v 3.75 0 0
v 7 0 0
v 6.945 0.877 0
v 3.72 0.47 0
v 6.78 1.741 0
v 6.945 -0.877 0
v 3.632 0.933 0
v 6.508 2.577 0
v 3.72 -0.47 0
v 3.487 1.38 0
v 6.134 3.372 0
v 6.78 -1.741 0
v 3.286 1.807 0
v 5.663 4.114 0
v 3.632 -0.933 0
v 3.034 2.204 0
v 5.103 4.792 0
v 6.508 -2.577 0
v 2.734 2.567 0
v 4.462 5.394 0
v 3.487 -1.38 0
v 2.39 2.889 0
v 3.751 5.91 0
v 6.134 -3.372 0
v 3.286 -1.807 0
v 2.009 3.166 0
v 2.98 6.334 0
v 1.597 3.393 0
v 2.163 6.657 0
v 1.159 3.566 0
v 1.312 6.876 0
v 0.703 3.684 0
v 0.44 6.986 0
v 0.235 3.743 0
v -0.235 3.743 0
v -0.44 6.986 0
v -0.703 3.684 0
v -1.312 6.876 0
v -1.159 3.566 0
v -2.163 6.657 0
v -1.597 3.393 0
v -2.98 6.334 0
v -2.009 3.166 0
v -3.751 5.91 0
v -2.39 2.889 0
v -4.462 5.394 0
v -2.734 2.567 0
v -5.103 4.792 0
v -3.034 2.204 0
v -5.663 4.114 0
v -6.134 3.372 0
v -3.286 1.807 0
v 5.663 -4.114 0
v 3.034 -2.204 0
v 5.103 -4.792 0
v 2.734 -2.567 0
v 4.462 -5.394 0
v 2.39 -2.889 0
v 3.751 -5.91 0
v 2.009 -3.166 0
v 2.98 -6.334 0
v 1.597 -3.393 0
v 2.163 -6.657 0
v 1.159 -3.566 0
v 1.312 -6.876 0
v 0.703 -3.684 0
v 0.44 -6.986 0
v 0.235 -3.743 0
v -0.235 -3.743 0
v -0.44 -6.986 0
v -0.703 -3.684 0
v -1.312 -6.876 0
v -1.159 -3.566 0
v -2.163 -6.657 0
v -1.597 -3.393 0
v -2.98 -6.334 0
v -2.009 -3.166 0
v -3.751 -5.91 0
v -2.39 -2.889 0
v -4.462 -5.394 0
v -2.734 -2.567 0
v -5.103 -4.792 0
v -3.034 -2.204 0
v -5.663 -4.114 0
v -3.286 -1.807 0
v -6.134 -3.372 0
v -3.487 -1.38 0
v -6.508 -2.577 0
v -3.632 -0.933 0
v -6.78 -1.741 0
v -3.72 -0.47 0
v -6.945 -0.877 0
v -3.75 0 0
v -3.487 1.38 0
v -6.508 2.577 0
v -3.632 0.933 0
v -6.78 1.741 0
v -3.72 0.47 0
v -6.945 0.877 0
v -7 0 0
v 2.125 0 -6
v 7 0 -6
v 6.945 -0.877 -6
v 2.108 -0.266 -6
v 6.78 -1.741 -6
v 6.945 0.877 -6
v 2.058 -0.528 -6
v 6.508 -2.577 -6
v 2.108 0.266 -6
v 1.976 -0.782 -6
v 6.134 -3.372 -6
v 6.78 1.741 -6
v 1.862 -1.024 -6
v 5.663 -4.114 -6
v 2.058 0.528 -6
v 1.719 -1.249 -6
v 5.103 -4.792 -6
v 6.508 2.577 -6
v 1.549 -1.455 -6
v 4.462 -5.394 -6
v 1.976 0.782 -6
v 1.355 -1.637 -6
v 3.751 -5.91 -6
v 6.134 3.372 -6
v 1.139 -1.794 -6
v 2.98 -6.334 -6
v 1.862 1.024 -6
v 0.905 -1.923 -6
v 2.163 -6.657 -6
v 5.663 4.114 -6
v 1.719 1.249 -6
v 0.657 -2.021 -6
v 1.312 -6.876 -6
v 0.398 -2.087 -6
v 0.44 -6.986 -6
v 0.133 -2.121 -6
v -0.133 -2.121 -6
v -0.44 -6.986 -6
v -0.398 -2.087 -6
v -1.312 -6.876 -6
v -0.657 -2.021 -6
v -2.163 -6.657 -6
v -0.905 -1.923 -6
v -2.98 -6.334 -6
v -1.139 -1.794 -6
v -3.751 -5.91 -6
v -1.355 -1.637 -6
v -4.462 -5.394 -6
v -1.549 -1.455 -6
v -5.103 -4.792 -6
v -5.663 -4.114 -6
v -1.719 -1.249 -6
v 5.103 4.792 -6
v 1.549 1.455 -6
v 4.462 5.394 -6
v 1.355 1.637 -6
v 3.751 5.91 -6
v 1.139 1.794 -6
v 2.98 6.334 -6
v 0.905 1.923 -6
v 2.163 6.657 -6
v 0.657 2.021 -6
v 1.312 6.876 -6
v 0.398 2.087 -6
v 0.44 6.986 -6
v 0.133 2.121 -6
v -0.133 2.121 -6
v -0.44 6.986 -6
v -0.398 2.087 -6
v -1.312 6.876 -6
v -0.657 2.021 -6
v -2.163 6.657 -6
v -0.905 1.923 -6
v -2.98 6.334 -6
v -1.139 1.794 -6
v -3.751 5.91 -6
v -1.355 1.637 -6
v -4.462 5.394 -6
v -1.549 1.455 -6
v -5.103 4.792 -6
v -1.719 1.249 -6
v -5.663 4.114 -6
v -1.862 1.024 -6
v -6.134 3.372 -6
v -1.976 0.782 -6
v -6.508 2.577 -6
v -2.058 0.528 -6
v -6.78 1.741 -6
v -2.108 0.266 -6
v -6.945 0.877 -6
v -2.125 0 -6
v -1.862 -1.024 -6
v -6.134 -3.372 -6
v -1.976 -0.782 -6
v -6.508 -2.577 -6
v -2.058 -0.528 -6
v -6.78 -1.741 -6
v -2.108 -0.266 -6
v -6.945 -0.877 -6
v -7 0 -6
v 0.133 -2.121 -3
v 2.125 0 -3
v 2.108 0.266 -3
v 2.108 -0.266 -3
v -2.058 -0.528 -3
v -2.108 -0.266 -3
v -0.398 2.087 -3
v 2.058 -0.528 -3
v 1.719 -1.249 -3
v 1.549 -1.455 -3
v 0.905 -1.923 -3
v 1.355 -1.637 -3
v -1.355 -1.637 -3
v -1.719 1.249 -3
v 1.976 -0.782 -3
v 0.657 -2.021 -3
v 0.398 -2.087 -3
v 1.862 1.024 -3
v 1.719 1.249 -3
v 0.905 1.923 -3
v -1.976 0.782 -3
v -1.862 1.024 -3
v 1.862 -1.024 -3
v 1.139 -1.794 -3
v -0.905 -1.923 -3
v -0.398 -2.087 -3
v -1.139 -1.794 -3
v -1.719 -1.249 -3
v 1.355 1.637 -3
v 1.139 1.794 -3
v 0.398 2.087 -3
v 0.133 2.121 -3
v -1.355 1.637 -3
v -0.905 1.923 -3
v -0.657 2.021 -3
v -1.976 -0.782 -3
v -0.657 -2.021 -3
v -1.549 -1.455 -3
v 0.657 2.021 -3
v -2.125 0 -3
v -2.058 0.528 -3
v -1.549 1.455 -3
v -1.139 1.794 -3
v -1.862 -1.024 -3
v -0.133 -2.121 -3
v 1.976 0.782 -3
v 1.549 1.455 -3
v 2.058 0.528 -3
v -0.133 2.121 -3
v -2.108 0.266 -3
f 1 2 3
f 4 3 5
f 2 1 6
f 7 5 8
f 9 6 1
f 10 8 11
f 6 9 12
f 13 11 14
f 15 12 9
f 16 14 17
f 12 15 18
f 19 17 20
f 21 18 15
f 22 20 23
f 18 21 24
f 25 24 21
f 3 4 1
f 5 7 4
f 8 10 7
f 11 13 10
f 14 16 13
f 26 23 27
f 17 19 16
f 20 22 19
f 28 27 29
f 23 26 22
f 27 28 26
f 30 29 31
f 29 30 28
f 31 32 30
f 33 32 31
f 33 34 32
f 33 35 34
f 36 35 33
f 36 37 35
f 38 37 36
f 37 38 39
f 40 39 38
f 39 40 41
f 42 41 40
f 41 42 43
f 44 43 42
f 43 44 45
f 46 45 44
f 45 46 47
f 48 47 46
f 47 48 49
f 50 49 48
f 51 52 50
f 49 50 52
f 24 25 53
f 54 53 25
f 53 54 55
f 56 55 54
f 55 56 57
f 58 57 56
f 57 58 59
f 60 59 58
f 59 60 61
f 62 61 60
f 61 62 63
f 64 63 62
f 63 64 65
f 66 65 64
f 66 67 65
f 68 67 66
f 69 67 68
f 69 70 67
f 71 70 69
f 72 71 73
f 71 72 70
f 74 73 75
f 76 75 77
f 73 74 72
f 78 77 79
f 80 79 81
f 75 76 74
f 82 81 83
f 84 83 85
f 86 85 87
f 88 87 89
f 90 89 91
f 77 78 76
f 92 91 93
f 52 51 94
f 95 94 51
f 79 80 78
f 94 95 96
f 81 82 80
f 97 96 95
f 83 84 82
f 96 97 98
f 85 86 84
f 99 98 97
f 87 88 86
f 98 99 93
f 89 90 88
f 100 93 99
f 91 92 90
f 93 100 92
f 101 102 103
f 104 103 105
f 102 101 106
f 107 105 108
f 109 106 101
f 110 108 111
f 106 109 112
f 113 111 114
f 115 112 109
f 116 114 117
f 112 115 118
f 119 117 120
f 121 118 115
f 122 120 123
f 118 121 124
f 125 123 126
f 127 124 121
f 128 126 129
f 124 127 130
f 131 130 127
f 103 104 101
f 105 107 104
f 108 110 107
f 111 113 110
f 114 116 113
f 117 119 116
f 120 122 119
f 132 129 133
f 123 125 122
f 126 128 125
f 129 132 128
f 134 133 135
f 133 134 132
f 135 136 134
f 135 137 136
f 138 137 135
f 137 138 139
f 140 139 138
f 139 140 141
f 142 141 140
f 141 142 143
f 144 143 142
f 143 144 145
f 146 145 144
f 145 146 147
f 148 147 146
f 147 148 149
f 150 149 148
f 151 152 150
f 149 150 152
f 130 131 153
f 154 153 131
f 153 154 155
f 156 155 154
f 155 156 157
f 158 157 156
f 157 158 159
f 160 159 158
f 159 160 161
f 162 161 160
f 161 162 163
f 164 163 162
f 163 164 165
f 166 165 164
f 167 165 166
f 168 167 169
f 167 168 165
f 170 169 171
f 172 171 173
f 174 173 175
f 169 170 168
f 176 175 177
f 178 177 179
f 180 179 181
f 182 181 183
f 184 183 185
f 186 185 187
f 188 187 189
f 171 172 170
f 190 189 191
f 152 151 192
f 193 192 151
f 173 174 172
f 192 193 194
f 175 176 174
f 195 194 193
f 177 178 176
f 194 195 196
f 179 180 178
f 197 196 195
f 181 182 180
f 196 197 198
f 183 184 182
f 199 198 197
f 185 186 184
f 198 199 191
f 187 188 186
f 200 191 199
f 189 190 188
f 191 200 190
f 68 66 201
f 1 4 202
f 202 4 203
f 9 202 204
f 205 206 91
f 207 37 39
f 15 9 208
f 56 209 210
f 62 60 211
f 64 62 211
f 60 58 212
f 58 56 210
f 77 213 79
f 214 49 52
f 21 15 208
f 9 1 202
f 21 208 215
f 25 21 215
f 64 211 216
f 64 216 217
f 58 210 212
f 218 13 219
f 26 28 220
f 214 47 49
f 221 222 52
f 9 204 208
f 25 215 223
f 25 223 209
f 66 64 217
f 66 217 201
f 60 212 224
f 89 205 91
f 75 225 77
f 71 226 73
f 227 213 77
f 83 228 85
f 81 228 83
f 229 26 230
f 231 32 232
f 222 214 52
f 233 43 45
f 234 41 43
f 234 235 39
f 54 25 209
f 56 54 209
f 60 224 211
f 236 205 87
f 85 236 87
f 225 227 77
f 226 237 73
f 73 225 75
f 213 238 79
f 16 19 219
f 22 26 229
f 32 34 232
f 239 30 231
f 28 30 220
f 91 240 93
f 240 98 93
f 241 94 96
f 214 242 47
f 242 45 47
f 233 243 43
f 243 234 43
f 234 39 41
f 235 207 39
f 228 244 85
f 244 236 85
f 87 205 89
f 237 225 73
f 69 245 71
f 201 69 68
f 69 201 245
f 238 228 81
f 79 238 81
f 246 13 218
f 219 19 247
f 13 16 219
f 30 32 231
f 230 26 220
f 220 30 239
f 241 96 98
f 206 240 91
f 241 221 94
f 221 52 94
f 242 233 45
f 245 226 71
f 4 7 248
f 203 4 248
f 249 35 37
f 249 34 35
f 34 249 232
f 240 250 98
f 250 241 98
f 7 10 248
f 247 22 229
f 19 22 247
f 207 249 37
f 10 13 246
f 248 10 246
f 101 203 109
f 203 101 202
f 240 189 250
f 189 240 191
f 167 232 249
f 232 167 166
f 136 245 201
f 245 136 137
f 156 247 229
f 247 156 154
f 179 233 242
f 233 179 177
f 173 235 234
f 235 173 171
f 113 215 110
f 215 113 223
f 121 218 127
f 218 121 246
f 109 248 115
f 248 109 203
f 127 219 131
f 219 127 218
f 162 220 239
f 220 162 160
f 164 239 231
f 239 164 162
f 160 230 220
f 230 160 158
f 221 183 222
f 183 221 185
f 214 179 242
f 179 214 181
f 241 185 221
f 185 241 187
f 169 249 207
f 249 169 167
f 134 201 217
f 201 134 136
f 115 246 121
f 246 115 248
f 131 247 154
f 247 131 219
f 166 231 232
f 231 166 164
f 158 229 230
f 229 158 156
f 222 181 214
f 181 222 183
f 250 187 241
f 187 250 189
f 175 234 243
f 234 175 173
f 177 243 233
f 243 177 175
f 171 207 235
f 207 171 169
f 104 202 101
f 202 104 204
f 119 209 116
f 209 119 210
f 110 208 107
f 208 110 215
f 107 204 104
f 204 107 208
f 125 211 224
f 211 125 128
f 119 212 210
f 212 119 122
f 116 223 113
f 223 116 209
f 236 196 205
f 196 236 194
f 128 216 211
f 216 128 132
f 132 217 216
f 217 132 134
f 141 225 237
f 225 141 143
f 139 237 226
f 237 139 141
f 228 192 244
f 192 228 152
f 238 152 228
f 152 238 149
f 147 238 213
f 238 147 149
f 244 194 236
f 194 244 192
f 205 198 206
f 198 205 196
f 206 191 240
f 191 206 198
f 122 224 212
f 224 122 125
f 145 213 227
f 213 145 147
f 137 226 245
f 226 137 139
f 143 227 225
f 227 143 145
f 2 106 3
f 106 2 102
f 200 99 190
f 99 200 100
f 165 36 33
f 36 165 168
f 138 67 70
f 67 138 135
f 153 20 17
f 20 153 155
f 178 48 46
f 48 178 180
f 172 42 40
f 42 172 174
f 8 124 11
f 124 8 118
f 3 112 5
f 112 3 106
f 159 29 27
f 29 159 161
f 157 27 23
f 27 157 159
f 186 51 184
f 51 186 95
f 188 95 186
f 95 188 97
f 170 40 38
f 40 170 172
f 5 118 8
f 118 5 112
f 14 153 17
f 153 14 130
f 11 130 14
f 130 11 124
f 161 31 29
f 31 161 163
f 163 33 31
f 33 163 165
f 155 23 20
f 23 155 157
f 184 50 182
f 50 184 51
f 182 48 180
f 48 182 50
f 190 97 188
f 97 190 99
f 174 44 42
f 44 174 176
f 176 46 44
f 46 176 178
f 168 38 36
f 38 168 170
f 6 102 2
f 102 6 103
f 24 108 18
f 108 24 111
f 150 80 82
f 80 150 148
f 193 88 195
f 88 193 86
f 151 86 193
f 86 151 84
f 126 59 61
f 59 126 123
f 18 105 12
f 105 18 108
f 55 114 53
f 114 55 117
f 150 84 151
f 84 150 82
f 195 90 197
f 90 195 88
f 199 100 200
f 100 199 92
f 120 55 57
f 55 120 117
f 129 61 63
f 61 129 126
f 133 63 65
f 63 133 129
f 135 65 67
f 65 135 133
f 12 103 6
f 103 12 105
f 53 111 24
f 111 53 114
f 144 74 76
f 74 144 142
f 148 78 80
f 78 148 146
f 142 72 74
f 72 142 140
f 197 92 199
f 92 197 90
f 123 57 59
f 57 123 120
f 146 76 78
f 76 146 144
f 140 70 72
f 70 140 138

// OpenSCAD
$fn = 50;


difference() {
	union() {
		translate(v = [0, 0, -6.0000000000]) {
			cylinder(h = 6, r = 7.0000000000);
		}
		cylinder(h = 0, r = 16.0000000000);
	}
	union() {
		translate(v = [0, 0, 0]) {
			rotate(a = [0, 0, 0]) {
				difference() {
					union() {
						#translate(v = [0, 0, -6.0000000000]) {
							cylinder(h = 6, r = 2.0000000000);
						}
						#translate(v = [0, 0, -3]) {
							cylinder(h = 3, r = 7.0000000000, r1 = 2.1250000000, r2 = 3.7500000000);
						}
						#translate(v = [0, 0, -6.0000000000]) {
							cylinder(h = 6, r = 2.1250000000);
						}
						#translate(v = [0, 0, -6.0000000000]) {
							cylinder(h = 6, r = 2.0000000000);
						}
					}
					union();
				}
			}
		}
	}
}
